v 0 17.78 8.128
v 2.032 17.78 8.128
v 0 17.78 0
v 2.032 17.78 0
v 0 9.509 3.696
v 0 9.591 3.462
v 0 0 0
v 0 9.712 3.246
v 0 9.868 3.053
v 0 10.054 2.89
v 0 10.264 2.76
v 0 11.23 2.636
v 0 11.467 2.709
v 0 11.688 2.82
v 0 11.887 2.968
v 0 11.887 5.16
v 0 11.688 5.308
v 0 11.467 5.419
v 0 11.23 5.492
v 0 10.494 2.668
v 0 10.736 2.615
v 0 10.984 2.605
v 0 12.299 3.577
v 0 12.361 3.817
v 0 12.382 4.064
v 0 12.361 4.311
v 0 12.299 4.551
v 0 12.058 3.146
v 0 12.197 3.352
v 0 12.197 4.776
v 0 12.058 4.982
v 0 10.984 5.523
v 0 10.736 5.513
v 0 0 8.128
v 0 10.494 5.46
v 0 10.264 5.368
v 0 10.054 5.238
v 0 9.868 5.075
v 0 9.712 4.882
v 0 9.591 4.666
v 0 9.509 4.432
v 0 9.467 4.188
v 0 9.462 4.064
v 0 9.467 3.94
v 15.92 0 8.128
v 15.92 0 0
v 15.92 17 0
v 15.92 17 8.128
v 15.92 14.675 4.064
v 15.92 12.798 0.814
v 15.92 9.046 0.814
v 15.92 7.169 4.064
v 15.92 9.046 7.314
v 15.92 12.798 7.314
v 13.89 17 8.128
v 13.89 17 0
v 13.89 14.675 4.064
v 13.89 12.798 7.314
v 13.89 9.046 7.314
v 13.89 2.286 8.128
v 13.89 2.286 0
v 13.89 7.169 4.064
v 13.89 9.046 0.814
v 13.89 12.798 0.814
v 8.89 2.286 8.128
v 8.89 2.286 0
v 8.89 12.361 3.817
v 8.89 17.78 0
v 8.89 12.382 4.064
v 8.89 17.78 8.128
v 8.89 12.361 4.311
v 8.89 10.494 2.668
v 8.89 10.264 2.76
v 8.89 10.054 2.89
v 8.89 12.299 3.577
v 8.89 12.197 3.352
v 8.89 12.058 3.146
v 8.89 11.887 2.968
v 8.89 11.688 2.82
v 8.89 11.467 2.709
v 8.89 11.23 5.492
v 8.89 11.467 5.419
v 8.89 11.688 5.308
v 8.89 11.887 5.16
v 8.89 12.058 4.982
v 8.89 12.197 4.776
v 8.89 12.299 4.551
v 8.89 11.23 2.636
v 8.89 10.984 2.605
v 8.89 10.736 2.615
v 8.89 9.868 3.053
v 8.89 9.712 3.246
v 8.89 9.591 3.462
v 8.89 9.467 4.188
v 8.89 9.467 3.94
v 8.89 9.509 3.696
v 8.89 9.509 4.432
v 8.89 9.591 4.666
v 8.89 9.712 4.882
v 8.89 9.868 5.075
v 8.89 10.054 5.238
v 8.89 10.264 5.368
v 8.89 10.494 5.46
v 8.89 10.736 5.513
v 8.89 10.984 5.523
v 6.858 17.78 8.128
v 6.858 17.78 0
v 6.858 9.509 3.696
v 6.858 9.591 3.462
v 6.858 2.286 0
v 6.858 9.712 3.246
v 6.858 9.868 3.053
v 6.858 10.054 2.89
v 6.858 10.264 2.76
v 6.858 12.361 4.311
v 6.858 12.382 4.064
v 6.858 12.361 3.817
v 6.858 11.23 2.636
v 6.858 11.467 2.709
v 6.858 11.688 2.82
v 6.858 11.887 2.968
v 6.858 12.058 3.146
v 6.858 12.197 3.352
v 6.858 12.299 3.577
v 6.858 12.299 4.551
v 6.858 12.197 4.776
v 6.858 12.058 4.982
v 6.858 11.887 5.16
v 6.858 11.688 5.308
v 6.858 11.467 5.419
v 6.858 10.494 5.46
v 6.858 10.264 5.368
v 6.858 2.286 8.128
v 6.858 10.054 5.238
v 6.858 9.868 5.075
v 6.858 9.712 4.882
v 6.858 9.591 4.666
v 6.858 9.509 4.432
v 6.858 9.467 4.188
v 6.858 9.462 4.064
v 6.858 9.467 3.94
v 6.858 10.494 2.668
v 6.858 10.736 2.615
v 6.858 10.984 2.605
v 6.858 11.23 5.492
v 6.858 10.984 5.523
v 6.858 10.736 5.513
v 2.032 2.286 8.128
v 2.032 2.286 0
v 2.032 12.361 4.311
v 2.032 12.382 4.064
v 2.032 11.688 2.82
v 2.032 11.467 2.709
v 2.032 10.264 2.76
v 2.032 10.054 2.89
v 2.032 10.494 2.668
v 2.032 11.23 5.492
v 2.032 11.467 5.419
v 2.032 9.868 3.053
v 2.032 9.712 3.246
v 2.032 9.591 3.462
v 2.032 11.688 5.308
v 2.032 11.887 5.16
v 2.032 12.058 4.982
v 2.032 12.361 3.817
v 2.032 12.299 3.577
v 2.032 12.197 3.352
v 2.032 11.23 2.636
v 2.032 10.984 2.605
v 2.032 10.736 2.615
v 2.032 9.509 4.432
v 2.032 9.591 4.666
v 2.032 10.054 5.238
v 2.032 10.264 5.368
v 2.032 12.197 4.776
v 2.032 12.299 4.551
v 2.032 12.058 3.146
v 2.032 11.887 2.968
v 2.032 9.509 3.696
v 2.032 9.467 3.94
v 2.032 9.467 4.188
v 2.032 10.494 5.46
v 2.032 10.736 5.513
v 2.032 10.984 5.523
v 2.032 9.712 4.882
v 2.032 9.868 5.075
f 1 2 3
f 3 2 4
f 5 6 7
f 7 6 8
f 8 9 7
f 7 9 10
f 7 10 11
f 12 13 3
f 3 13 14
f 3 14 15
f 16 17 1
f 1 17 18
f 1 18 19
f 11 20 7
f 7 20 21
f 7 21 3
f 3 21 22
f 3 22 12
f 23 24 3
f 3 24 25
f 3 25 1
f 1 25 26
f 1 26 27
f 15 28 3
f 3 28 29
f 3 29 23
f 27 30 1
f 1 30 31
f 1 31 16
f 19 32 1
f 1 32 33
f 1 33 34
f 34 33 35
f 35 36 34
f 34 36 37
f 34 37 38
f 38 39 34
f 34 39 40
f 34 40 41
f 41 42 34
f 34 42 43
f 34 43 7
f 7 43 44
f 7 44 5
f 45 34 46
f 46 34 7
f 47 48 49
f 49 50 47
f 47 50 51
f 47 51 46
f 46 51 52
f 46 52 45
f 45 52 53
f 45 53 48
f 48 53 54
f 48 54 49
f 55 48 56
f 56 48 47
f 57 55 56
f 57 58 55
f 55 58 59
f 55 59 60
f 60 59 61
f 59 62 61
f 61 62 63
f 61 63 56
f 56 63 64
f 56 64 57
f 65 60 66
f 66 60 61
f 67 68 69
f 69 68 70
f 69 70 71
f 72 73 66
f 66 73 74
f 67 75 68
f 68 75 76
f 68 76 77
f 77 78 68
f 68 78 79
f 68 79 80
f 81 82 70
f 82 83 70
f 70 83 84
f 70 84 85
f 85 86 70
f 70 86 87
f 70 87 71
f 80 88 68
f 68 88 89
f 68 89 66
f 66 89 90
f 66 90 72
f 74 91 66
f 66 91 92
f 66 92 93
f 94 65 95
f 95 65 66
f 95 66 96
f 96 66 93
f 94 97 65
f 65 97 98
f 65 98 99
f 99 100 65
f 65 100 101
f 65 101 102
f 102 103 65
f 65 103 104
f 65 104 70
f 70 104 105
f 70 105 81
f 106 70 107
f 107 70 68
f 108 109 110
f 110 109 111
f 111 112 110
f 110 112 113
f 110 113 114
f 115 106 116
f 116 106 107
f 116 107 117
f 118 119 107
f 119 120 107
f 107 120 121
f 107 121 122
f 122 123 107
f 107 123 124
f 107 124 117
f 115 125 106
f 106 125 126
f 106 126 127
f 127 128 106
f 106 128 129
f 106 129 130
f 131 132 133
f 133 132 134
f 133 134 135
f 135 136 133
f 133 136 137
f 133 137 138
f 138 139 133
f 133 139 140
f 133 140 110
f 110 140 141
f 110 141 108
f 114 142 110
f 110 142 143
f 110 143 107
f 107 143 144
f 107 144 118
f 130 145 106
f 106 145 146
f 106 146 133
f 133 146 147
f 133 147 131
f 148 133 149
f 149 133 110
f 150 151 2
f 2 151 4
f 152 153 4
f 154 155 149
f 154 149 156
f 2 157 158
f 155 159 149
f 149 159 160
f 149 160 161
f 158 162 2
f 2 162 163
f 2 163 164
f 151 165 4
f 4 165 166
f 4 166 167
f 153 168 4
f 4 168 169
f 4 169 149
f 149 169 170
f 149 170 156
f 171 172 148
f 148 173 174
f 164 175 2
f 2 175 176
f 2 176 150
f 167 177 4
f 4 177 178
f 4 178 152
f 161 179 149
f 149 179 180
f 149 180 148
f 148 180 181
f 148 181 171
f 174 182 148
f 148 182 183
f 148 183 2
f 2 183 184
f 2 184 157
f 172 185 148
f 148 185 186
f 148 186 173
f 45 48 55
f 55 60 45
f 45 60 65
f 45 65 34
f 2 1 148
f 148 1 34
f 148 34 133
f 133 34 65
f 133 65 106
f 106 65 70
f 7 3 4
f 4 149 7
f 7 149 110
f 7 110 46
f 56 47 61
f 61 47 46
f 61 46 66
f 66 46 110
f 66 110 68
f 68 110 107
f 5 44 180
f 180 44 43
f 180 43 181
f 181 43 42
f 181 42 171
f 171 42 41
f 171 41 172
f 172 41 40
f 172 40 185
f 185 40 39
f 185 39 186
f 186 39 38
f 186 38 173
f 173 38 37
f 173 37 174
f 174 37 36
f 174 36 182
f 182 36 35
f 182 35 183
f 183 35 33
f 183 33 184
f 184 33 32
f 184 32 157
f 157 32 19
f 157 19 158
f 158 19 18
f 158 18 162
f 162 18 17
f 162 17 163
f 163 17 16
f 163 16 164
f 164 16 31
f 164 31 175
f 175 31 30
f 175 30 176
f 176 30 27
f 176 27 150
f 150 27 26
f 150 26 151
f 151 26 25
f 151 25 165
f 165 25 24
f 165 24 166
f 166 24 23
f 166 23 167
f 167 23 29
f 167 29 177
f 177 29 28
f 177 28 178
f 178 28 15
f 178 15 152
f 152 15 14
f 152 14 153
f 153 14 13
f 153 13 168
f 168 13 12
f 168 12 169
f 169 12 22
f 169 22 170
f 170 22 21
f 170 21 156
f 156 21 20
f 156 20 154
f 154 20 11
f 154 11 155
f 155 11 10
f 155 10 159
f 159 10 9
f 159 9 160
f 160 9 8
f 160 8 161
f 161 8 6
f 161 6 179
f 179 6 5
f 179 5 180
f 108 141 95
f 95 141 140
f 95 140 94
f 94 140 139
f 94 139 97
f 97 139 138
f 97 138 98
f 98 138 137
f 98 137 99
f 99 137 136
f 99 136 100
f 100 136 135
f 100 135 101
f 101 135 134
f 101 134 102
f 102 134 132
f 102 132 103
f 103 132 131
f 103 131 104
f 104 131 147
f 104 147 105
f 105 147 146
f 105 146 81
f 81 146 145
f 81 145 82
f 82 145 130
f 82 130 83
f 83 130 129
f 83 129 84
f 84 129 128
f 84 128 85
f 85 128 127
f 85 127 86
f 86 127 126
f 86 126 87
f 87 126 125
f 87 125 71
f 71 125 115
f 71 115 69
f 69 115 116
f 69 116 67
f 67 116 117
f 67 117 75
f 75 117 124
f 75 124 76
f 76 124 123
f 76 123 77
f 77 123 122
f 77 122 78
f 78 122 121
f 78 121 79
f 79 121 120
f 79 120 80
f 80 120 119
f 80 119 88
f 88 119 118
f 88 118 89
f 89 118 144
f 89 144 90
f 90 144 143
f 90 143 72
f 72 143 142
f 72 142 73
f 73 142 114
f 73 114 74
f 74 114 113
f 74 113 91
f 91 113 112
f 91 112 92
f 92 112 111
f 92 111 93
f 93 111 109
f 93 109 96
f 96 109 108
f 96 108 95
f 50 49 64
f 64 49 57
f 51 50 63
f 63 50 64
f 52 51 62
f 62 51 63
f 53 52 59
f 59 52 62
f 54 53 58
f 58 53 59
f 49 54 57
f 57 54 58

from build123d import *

# Parameters (mm, degrees)
EXTRUSION1_DEPTH   = 8.128
SKETCH2_R          = 1.4605
CUT_EXTRUDE2_DEPTH = 10
CUT_EXTRUDE3_REACH = 27.212


with BuildPart() as part:
    # Sketch1 → Extrusion1 (new body)
    with BuildSketch(Plane.XY):
        Polygon((0, 17.78), (2.032, 17.78), (2.032, 2.286), (6.858, 2.286), (6.858, 17.78), (8.89, 17.78), (8.89, 0), (0, 0), (0, 2.154296207), align=None)
        Polygon((8.89, 2.286), (8.89, 0), (15.24, 0), (15.92, 0), (15.92, 17), (13.89, 17), (13.89, 2.286), align=None)
    extrude(amount=EXTRUSION1_DEPTH)

    # Sketch2 → Cut-Extrude2 (cut)
    with BuildSketch(Plane(origin=(8.89, 0, 0), x_dir=(0, 0, -1), z_dir=(1, 0, 0))):
        with Locations(Location((-4.064, 10.922, 0), (0, 0, 90))):
            Circle(SKETCH2_R)
    extrude(amount=-CUT_EXTRUDE2_DEPTH, mode=Mode.SUBTRACT)

    # Sketch4 → Cut-Extrude3 (cut, up to next)
    with BuildSketch(Plane(origin=(15.92, 0, 0), x_dir=(0, 0, -1), z_dir=(1, 0, 0)), mode=Mode.PRIVATE) as cut_extrude3_sk1:
        Polygon((-4.064, 14.67477675), (-7.314, 12.798388375), (-7.314, 9.045611625), (-4.064, 7.16922325), (-0.814, 9.045611625), (-0.814, 12.798388375), align=None)
    cut_extrude3_tool1 = extrude(cut_extrude3_sk1.sketch, amount=-CUT_EXTRUDE3_REACH, mode=Mode.PRIVATE) & part.part
    add(cut_extrude3_tool1.solids().sort_by_distance((15.92, 10.922, 4.064))[0], mode=Mode.SUBTRACT)


solid = part.part
